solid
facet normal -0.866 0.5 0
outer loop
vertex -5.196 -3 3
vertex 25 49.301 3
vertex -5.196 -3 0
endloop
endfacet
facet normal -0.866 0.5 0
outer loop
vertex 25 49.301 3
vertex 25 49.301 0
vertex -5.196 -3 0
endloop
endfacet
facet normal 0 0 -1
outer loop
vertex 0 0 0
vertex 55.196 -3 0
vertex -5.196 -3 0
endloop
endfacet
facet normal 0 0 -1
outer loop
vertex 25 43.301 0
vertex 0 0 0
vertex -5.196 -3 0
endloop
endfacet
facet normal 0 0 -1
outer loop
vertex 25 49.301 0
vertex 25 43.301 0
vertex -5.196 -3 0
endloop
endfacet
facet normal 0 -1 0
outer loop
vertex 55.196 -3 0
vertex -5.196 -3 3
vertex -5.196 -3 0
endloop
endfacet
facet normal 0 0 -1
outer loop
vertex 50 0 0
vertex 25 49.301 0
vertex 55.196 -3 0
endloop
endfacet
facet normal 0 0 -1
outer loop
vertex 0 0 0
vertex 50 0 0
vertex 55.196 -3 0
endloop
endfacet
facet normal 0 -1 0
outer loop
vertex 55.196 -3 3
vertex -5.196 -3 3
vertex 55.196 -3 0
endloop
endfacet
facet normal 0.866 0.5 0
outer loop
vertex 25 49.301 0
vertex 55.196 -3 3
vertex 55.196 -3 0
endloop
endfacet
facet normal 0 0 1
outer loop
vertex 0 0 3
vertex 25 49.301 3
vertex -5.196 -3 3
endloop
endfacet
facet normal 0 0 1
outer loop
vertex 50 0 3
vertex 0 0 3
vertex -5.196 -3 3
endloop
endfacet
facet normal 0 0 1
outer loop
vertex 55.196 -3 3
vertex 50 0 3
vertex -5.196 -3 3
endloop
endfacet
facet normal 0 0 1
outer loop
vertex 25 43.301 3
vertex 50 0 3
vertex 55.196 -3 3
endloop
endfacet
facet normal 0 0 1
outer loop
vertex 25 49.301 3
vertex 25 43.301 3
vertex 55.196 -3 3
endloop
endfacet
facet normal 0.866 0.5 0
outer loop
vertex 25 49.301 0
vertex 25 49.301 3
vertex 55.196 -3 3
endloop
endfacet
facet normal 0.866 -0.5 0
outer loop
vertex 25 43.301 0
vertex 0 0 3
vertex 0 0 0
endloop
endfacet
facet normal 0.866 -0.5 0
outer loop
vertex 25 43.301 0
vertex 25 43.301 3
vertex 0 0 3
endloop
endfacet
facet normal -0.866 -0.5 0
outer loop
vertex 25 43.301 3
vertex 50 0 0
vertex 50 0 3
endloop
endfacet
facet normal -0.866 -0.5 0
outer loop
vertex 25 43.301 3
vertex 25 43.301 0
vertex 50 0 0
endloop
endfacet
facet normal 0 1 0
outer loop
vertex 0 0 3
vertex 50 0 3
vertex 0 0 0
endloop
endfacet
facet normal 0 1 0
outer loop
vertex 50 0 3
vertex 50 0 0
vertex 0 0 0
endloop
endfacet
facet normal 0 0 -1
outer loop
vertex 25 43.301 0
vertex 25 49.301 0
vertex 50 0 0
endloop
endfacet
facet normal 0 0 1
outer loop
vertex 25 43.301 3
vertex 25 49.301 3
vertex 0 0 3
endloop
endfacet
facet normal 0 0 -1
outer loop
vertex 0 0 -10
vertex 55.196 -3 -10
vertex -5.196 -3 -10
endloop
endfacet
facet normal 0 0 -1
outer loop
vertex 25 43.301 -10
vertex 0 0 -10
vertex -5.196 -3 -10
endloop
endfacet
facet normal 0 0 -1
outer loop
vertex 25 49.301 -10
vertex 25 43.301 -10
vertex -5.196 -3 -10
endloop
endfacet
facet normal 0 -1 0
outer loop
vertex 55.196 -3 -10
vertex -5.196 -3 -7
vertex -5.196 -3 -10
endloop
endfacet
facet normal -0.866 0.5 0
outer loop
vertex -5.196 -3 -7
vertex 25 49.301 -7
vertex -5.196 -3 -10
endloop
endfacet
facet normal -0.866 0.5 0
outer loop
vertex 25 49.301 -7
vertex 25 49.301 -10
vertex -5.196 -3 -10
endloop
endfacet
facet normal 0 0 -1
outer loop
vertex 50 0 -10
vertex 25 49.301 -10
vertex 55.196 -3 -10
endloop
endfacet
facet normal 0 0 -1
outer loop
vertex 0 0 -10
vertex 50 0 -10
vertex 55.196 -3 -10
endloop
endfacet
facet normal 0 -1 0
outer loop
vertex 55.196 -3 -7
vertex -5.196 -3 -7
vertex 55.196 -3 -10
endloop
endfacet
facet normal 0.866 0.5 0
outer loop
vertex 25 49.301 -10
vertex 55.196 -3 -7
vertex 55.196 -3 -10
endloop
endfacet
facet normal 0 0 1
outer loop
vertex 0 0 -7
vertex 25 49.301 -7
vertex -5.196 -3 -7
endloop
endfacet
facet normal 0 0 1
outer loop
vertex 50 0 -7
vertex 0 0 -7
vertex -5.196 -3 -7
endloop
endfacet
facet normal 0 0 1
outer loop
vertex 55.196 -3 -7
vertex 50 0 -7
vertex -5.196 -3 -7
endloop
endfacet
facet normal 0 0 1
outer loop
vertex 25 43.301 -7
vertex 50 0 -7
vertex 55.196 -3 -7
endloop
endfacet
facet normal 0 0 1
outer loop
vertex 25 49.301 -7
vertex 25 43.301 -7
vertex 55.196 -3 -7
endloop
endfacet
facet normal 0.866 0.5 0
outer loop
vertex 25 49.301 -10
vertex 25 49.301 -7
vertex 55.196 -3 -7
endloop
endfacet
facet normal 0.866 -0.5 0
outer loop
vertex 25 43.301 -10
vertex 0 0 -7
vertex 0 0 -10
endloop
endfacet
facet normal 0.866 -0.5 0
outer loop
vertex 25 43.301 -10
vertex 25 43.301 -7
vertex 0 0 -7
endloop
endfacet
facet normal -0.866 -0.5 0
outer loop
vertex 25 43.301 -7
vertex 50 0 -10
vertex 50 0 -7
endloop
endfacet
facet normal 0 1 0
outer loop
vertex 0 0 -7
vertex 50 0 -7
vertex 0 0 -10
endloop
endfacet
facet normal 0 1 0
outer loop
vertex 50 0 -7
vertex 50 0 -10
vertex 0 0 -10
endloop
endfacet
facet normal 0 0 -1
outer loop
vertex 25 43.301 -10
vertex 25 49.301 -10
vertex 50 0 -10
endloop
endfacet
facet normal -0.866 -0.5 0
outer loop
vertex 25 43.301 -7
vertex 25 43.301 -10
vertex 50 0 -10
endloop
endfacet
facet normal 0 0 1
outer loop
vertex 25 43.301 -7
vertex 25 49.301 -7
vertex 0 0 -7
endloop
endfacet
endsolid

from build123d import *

# Parameters (mm, degrees)
BOSS_EXTRUDE2_DEPTH = 3
BOSS_EXTRUDE3_DEPTH = 3


with BuildPart() as part:
    # Sketch1 → Boss-Extrude2 (new body)
    with BuildSketch(Plane.XY):
        Polygon((55.196152423, -3), (25, 49.301270189), (-5.196152423, -3), align=None)
        Polygon((0, 0), (50, 0), (25, 43.301270189), align=None, mode=Mode.SUBTRACT)
    extrude(amount=BOSS_EXTRUDE2_DEPTH)


with BuildPart() as body_2:
    # Sketch2 → Boss-Extrude3 (new body)
    with BuildSketch(Plane.XY.offset(-10)):
        Polygon((55.196152423, -3), (25, 49.301270189), (-5.196152423, -3), align=None)
        Polygon((0, 0), (50, 0), (25, 43.301270189), align=None, mode=Mode.SUBTRACT)
    extrude(amount=BOSS_EXTRUDE3_DEPTH)


solid = Compound([part.part, body_2.part])
